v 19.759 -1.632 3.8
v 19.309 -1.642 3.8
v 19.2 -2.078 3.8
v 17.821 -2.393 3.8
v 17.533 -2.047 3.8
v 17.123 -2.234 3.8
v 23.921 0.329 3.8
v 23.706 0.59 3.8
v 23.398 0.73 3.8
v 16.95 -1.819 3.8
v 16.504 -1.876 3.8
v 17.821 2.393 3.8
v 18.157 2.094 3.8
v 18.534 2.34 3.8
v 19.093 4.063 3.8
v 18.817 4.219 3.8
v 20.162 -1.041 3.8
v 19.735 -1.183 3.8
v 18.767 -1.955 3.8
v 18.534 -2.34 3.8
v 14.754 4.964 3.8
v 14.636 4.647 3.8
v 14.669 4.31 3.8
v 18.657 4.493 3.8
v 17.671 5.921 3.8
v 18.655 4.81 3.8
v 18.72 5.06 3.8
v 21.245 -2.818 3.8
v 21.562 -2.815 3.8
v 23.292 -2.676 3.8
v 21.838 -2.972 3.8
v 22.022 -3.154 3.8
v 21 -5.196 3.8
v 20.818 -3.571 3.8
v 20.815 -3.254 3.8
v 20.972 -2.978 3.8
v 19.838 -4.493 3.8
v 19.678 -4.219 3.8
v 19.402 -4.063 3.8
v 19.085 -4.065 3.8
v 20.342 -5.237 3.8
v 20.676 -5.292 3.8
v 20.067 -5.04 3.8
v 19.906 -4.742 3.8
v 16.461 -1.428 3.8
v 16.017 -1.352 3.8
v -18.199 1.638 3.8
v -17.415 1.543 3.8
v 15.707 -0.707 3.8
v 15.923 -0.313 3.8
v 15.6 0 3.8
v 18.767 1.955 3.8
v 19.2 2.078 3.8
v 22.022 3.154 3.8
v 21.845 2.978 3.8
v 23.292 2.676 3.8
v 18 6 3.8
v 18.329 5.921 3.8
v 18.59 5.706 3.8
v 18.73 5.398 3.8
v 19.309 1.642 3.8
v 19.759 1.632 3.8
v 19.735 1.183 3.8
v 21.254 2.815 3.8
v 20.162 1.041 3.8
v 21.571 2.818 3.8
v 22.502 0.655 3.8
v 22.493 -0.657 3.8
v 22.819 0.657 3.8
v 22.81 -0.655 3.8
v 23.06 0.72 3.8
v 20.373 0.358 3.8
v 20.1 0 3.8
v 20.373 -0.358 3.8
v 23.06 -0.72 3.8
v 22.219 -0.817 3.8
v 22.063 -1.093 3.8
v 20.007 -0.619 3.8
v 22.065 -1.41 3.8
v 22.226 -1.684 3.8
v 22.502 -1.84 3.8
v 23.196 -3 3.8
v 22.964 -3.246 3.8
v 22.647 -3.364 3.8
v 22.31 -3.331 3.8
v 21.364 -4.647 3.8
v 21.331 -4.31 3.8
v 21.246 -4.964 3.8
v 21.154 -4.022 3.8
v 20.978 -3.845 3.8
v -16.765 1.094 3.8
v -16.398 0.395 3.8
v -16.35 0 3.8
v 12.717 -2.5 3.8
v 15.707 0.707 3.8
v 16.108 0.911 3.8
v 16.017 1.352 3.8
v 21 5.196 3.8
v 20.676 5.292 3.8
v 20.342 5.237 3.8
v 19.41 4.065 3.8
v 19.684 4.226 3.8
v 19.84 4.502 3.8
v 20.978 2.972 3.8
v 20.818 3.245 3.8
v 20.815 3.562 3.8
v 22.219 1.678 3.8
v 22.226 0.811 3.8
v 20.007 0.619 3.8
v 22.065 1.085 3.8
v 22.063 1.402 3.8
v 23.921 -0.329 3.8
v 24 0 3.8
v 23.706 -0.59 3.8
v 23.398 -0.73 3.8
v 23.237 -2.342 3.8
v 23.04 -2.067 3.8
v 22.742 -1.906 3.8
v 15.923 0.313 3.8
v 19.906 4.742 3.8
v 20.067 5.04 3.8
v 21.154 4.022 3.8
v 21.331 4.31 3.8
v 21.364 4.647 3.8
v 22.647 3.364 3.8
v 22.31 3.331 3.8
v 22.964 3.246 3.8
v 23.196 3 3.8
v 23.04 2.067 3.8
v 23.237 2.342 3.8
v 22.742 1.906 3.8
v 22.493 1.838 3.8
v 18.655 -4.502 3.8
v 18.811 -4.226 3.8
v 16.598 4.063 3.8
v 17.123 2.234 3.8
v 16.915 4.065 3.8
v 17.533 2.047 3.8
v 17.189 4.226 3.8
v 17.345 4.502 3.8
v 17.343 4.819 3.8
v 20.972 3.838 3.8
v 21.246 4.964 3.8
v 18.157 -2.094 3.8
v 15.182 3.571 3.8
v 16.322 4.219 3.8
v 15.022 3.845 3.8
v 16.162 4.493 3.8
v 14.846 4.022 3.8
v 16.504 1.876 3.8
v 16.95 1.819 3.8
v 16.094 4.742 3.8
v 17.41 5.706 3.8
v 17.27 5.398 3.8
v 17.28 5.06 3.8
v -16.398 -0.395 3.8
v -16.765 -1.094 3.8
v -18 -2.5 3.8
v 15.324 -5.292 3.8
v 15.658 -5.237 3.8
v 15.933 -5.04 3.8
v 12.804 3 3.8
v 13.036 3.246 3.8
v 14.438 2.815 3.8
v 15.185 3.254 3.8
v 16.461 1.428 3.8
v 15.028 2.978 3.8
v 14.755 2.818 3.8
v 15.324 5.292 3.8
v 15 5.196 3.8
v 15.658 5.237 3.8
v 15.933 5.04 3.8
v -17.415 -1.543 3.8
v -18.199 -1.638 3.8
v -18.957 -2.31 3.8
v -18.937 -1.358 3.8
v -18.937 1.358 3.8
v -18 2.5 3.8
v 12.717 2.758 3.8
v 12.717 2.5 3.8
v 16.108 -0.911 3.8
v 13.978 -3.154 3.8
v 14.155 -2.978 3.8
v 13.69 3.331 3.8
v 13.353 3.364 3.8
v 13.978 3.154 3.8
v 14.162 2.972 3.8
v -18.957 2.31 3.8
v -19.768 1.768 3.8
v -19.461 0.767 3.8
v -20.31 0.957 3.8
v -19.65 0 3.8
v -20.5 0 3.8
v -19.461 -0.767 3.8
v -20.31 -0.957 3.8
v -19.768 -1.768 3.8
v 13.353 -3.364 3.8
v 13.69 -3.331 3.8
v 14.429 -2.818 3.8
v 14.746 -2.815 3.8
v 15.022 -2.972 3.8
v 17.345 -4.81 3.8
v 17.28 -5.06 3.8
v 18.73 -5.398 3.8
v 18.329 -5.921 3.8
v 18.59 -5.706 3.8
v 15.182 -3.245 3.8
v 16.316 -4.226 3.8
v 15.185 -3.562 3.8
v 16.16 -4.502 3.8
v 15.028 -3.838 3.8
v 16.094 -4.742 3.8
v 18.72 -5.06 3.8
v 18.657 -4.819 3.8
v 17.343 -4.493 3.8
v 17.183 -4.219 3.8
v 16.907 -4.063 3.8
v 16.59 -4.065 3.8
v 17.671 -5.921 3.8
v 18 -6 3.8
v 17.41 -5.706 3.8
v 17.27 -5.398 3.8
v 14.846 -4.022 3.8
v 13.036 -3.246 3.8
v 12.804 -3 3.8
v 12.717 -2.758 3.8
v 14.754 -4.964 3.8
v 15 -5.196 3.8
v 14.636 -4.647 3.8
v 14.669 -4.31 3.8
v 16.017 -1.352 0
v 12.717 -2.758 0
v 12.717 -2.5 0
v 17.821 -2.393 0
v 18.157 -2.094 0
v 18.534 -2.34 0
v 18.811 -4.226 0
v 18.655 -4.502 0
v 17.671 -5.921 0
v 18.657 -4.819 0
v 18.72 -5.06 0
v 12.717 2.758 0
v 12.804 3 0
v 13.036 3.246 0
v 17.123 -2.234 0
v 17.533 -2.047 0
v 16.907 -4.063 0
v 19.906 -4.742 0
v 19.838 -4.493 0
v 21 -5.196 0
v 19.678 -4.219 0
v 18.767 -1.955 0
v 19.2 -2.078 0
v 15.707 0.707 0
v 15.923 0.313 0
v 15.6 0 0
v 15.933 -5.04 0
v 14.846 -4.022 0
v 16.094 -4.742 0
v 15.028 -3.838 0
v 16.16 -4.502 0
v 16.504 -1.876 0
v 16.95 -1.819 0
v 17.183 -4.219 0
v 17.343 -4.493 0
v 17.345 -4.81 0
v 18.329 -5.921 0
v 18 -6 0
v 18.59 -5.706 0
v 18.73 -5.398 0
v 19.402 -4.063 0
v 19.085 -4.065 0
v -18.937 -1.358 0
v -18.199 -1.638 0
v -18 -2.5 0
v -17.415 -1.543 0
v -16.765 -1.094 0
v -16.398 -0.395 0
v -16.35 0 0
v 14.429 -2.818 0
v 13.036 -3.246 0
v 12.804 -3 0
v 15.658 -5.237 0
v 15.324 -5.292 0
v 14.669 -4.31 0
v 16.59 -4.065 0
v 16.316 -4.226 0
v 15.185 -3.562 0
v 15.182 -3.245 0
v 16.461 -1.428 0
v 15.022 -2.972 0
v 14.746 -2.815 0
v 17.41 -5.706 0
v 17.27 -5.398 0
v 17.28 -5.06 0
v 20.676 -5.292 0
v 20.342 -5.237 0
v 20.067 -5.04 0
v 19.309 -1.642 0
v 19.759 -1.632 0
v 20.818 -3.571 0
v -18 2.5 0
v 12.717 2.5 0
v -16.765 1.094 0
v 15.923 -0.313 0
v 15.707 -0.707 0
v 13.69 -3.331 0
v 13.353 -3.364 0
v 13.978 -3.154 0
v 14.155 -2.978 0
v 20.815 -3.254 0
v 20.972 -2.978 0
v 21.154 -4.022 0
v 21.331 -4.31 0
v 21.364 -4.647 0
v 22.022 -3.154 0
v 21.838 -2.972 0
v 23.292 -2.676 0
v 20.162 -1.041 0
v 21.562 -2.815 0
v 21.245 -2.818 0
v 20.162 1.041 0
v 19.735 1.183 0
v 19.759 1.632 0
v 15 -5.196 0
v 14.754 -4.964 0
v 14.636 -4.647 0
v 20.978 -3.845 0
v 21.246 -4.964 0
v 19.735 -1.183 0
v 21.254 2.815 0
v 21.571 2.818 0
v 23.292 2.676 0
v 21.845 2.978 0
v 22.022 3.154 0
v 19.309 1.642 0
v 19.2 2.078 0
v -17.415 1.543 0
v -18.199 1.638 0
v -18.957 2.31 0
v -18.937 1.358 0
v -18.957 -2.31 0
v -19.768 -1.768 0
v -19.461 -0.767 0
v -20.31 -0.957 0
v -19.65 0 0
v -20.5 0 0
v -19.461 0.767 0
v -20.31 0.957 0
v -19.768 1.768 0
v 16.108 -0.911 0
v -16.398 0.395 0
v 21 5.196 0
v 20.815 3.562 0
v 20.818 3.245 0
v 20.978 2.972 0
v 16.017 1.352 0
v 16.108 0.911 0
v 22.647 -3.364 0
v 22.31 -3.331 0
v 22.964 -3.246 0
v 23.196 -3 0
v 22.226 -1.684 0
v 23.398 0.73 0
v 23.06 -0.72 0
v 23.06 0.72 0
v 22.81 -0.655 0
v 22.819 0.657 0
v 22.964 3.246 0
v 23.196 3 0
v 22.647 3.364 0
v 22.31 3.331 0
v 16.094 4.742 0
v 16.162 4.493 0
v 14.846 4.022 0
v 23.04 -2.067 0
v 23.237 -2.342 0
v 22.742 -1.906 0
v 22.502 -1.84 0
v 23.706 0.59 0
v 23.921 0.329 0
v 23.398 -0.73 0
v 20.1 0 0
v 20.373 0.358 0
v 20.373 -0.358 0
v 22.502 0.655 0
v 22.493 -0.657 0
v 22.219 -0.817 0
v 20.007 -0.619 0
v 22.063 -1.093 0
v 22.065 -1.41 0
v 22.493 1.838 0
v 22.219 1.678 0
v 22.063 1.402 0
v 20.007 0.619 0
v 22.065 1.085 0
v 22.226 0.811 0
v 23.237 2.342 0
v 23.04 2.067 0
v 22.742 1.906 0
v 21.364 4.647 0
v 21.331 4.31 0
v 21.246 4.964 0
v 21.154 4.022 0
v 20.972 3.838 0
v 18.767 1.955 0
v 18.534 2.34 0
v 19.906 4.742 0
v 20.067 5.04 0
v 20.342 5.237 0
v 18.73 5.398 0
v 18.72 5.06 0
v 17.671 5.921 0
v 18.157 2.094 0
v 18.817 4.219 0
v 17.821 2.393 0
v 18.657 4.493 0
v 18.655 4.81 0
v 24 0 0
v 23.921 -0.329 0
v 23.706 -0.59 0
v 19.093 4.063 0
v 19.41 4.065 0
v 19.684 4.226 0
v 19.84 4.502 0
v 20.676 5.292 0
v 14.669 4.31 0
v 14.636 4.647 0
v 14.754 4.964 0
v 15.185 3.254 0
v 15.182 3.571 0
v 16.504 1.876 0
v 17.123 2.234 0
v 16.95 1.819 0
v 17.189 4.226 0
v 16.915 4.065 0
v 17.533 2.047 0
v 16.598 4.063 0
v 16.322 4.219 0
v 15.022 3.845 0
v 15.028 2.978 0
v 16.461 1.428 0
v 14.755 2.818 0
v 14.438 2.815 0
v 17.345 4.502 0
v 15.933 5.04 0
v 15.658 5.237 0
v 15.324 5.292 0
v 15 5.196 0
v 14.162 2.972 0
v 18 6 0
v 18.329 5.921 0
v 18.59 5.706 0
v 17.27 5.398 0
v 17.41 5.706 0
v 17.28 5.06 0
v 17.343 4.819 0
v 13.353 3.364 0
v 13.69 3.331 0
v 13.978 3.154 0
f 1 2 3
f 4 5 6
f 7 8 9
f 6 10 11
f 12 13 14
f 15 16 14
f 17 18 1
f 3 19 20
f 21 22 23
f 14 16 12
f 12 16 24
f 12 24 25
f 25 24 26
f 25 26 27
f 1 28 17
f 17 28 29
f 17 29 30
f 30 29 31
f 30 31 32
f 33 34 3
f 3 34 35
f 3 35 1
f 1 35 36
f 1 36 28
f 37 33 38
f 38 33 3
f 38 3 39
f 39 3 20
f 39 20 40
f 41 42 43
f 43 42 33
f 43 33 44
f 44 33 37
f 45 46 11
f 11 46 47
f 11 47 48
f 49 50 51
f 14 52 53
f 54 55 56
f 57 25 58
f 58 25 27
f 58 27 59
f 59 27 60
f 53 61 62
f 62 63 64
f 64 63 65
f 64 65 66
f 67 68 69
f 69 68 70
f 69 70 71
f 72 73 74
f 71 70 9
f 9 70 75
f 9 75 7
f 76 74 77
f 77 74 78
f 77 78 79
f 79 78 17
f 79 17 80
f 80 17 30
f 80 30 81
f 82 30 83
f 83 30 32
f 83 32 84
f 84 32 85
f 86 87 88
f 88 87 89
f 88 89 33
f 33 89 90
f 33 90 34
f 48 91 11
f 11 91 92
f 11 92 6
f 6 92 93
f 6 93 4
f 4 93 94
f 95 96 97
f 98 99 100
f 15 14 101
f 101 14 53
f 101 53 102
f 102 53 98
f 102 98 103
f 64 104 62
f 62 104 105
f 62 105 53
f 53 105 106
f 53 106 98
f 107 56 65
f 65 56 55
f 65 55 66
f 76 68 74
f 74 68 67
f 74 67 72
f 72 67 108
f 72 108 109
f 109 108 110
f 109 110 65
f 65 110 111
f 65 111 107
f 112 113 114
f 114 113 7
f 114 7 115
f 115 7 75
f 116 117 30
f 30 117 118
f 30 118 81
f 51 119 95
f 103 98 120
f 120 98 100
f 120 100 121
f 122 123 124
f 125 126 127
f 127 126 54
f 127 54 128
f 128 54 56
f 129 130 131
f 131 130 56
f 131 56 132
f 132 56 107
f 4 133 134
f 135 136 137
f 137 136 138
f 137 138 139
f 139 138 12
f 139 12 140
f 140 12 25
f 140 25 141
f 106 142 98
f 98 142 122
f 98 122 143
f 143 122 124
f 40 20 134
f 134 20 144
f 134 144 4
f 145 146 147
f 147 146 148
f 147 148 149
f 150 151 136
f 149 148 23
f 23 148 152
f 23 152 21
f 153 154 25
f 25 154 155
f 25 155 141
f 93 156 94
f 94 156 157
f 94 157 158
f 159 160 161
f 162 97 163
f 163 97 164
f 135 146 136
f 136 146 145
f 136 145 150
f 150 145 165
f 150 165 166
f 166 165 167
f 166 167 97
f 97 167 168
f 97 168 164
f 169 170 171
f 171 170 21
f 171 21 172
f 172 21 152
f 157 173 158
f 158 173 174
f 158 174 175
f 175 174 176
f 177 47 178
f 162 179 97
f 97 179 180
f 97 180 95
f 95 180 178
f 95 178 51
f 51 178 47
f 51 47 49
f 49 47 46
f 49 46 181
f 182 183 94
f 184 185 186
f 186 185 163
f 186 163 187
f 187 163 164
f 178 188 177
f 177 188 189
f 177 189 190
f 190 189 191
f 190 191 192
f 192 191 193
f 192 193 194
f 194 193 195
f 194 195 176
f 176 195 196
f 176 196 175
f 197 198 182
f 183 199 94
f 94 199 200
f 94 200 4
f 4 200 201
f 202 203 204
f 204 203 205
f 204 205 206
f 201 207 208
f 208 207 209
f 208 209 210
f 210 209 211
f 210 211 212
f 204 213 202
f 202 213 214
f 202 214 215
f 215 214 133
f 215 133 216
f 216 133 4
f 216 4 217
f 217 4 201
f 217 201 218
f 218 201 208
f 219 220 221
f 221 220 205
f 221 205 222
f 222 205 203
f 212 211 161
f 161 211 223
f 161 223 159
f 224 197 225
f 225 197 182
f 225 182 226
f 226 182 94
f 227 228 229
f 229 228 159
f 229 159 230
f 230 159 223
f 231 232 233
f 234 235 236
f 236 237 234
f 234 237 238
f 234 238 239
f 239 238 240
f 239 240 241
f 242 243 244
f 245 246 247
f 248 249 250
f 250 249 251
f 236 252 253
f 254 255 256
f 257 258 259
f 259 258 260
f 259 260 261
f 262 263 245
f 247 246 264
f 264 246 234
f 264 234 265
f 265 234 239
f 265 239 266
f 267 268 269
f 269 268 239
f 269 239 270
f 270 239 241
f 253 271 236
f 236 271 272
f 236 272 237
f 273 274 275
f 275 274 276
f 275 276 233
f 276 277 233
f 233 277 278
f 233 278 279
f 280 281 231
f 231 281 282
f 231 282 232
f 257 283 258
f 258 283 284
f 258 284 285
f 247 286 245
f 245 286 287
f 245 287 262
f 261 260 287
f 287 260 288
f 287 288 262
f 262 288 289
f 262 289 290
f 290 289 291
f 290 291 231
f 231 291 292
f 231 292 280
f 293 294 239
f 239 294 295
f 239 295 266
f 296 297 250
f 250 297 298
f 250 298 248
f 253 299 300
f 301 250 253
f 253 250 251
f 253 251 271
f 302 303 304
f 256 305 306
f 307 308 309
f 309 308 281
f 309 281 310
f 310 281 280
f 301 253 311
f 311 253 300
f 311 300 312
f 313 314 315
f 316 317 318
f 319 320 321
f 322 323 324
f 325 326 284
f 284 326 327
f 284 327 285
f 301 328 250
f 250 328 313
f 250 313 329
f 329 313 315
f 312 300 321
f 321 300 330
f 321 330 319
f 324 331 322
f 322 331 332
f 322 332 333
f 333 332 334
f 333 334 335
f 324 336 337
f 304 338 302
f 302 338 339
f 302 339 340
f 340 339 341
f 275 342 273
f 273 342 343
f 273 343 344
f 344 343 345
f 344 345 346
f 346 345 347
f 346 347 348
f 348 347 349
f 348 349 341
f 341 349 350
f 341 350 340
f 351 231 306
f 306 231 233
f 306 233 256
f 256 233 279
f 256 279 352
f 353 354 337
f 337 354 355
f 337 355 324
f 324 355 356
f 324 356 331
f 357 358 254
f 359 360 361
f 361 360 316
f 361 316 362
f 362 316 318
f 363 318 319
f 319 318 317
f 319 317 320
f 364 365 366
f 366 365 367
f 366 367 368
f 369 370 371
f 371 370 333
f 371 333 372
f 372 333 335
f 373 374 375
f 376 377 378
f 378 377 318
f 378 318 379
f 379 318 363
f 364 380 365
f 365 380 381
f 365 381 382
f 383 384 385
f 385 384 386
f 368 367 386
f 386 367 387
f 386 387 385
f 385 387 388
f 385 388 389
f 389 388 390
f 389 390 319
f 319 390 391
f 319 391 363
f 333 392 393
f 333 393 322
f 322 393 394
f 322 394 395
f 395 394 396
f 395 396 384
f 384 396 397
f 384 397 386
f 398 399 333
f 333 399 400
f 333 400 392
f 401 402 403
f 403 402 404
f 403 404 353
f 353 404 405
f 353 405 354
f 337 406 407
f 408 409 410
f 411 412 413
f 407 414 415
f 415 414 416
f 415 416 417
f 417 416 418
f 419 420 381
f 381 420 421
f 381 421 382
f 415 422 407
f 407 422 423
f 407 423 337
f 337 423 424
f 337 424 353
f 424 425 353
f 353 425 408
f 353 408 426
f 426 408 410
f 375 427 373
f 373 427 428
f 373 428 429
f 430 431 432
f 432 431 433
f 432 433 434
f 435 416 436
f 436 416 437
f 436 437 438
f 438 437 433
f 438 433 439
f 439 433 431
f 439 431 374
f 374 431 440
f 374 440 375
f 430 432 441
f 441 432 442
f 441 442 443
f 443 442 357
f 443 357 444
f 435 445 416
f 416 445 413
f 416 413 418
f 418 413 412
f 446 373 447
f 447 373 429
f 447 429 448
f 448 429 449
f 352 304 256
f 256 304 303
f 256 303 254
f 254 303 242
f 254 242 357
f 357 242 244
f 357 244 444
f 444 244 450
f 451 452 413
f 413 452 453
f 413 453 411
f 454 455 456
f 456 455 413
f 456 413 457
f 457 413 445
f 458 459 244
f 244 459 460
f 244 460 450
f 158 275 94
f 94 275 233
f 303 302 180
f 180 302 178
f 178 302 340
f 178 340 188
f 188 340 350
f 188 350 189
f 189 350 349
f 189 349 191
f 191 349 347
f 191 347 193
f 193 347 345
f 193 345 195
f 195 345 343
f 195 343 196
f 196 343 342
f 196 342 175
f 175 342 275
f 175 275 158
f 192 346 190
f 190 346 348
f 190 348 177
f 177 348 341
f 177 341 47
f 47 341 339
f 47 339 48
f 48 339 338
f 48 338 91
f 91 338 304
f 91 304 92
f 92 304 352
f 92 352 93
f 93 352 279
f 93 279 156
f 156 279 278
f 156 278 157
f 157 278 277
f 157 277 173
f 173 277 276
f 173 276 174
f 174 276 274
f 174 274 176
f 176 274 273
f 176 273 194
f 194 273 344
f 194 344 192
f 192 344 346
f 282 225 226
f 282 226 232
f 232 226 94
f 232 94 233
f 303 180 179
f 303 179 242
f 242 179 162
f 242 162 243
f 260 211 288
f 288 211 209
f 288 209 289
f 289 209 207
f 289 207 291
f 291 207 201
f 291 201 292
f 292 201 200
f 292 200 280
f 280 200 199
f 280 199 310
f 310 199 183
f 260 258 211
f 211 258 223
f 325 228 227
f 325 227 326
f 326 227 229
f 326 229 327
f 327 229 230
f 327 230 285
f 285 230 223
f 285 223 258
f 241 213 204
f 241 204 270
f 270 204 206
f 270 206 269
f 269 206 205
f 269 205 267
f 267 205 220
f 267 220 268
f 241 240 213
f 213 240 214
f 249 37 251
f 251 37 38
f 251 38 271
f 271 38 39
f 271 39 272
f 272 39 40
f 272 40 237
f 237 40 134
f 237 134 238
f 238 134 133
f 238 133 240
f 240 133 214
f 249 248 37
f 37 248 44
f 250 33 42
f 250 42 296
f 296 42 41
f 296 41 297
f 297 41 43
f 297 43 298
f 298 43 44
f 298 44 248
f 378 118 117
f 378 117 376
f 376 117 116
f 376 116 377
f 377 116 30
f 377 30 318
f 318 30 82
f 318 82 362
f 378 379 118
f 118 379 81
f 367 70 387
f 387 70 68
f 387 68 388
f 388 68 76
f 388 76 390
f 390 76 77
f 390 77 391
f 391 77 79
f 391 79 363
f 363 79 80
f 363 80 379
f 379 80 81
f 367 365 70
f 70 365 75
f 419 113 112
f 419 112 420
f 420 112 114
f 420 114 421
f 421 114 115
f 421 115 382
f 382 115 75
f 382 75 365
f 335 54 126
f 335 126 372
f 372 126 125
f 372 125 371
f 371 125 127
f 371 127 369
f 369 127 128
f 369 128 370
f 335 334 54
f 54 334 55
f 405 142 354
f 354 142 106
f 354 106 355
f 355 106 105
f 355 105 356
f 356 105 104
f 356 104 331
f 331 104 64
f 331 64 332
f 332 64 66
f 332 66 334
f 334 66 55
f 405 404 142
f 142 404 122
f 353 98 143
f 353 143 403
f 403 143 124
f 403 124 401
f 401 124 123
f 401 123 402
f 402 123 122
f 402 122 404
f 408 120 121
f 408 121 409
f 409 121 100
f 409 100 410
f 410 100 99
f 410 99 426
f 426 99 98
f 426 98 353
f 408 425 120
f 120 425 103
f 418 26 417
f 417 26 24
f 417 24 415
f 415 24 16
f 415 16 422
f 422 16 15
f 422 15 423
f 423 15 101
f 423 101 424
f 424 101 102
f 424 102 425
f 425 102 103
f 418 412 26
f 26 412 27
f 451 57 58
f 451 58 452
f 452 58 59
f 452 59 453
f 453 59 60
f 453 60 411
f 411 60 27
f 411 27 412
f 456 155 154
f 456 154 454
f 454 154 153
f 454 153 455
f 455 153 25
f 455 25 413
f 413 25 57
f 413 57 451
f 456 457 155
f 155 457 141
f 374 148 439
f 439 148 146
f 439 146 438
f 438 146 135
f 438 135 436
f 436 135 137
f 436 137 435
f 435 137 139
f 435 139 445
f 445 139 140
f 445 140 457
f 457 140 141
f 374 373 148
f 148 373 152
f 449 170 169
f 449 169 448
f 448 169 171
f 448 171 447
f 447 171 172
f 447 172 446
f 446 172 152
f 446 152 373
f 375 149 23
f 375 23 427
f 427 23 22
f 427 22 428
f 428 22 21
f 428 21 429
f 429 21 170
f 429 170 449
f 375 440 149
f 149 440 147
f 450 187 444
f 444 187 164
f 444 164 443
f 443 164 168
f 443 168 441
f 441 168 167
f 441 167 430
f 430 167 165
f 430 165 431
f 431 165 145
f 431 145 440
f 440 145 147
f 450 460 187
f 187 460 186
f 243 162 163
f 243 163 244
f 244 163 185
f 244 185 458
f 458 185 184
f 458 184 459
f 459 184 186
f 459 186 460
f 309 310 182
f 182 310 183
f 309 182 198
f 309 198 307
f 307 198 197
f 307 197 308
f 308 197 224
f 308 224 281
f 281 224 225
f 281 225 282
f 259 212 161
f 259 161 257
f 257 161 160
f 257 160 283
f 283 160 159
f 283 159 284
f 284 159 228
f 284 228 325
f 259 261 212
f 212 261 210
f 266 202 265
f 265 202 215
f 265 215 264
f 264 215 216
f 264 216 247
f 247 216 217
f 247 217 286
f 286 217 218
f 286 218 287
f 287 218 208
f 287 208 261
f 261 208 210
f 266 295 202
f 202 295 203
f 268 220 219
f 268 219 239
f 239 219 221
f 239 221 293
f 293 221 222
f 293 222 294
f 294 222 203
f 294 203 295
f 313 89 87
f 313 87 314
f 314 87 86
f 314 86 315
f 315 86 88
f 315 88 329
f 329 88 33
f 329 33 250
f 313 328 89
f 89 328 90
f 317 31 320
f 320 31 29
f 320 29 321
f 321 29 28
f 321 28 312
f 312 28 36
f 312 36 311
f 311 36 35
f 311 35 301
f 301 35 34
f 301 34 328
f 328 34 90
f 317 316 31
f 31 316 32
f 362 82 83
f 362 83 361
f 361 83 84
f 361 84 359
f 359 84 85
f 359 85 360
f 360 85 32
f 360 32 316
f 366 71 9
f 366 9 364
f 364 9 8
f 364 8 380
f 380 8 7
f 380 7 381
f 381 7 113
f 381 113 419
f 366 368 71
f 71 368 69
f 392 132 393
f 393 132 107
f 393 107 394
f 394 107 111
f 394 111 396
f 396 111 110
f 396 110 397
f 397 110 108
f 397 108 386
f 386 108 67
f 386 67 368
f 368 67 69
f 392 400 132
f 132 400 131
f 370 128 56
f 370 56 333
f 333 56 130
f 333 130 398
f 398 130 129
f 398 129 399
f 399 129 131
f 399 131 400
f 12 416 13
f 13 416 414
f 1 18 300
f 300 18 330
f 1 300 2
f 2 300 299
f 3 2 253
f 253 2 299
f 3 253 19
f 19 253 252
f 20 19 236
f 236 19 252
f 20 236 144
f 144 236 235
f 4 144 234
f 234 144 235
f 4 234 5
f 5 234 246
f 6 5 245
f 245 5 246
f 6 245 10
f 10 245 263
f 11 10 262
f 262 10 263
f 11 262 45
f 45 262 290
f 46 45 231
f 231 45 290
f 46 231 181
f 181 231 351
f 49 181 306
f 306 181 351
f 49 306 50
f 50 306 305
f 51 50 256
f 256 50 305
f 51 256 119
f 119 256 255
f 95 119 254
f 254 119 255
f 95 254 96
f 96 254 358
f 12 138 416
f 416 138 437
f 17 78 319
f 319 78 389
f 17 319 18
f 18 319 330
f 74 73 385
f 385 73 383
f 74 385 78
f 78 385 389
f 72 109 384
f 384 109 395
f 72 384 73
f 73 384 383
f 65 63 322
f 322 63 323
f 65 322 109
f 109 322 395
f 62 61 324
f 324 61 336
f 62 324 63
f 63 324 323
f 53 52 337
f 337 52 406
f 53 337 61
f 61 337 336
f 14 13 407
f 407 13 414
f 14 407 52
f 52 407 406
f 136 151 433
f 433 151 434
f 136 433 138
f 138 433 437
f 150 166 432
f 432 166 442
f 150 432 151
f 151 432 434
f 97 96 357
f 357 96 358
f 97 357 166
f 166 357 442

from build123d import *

# Parameters (mm, degrees)
SKETCH1_R           = 1.65
BOSS_EXTRUDE1_DEPTH = 3.8
CUT_EXTRUDE1_DEPTH  = 26.02878343
CIRPATTERN1_COUNT   = 12
SKETCH3_W           = 5.990659071
SKETCH3_H           = 5
BOSS_EXTRUDE2_DEPTH = 3.8
SKETCH4_R           = 2.1
CUT_EXTRUDE2_DEPTH  = 26.02878343
CUT_EXTRUDE3_DEPTH  = 10


with BuildPart() as part:
    # Sketch1 → Boss-Extrude1 (new body)
    with BuildSketch(Plane.XY):
        with BuildLine():
            Line((-18, 2.5), (12.545643943, 2.5))
            ThreePointArc((12.545643943, 2.5), (24, 0), (12.545643943, -2.5))
            Line((12.545643943, -2.5), (-18, -2.5))
            ThreePointArc((-18, -2.5), (-20.5, 0), (-18, 2.5))
        make_face()
        with Locations(Location((-18, 0, 0), (0, 0, 180))):
            Circle(SKETCH1_R, mode=Mode.SUBTRACT)
    extrude(amount=BOSS_EXTRUDE1_DEPTH)

    # Sketch2 → Cut-Extrude1 (cut, through all)
    with BuildSketch(Plane.XY.offset(3.8)):
        with BuildLine():
            ThreePointArc((21, 5.196152423), (19.633748274, 6.097231567), (18, 6))
            ThreePointArc((18, 6), (19.552914271, 5.795554958), (21, 5.196152423))
        make_face()
        with BuildLine():
            ThreePointArc((18, 6), (18.589879661, 5.706078038), (18.72, 5.06))
            Line((18.72, 5.06), (18.654523502, 4.81))
            ThreePointArc((18.654523502, 4.81), (19.09327028, 4.062778187), (19.840492093, 4.501524965))
            Line((19.840492093, 4.501524965), (19.906461709, 4.742088543))
            ThreePointArc((19.906461709, 4.742088543), (20.342188248, 5.236548367), (21, 5.196152423))
            ThreePointArc((21, 5.196152423), (19.552914271, 5.795554958), (18, 6))
        make_face()
    cut_extrude1 = extrude(amount=-CUT_EXTRUDE1_DEPTH, mode=Mode.SUBTRACT)

    # CirPattern1: Cut-Extrude1 ×12 about axis
    cirpattern1_axis = Axis((18, 0, 0), (0, 0, 1))
    for i in range(1, CIRPATTERN1_COUNT):
        add(cut_extrude1.rotate(cirpattern1_axis, i * 360 / CIRPATTERN1_COUNT), mode=Mode.SUBTRACT)

    # Sketch3 → Boss-Extrude2 (add)
    with BuildSketch(Plane.XY.offset(3.8)):
        with Locations((13.282390893, 0)):
            Rectangle(SKETCH3_W, SKETCH3_H)
    extrude(amount=-BOSS_EXTRUDE2_DEPTH)

    # Sketch4 → Cut-Extrude2 (cut, through all)
    with BuildSketch(Plane.XY.offset(3.8)):
        with Locations((18, 0)):
            Circle(SKETCH4_R)
    extrude(amount=-CUT_EXTRUDE2_DEPTH, mode=Mode.SUBTRACT)

    # Sketch5 → Cut-Extrude3 (cut)
    with BuildSketch(Plane.XY.offset(3.8)):
        Polygon((20.006712152, 0.618955846), (20.373196658, 0.357683687), (20.1, 0), (20.373191307, -0.35771919), (20.006702892, -0.618985866), (20.162317494, -1.041337148), (19.735101426, -1.182972122), (19.759312282, -1.63242773), (19.309328584, -1.641846113), (19.199984453, -2.078469945), (18.767216151, -1.954834872), (18.53403274, -2.339830984), (18.156933197, -2.094127974), (17.820629874, -2.393287772), (17.532706039, -2.047348616), (17.123164831, -2.234090438), (16.95, -1.818653348), (16.50361044, -1.876384365), (16.460591069, -1.428362749), (16.017016829, -1.351953307), (16.107965377, -0.911155852), (15.706619975, -0.707395264), (15.923455265, -0.312988759), (15.6, 1.7952e-05), (15.923455265, 0.312988759), (15.706630558, 0.707429573), (16.107965377, 0.911155852), (16.017037054, 1.351982972), (16.460591069, 1.428362749), (16.503638511, 1.876406751), (16.95, 1.818653348), (17.123198253, 2.234103555), (17.532706039, 2.047348616), (17.820665677, 2.393290455), (18.156933197, 2.094127974), (18.534067743, 2.339822994), (18.767216151, 1.954834872), (19.200015547, 2.078451993), (19.309328584, 1.641846113), (19.759336703, 1.632401411), (19.735101426, 1.182972122), (20.162333072, 1.0413048), align=None)
    extrude(amount=-CUT_EXTRUDE3_DEPTH, mode=Mode.SUBTRACT)


solid = part.part
